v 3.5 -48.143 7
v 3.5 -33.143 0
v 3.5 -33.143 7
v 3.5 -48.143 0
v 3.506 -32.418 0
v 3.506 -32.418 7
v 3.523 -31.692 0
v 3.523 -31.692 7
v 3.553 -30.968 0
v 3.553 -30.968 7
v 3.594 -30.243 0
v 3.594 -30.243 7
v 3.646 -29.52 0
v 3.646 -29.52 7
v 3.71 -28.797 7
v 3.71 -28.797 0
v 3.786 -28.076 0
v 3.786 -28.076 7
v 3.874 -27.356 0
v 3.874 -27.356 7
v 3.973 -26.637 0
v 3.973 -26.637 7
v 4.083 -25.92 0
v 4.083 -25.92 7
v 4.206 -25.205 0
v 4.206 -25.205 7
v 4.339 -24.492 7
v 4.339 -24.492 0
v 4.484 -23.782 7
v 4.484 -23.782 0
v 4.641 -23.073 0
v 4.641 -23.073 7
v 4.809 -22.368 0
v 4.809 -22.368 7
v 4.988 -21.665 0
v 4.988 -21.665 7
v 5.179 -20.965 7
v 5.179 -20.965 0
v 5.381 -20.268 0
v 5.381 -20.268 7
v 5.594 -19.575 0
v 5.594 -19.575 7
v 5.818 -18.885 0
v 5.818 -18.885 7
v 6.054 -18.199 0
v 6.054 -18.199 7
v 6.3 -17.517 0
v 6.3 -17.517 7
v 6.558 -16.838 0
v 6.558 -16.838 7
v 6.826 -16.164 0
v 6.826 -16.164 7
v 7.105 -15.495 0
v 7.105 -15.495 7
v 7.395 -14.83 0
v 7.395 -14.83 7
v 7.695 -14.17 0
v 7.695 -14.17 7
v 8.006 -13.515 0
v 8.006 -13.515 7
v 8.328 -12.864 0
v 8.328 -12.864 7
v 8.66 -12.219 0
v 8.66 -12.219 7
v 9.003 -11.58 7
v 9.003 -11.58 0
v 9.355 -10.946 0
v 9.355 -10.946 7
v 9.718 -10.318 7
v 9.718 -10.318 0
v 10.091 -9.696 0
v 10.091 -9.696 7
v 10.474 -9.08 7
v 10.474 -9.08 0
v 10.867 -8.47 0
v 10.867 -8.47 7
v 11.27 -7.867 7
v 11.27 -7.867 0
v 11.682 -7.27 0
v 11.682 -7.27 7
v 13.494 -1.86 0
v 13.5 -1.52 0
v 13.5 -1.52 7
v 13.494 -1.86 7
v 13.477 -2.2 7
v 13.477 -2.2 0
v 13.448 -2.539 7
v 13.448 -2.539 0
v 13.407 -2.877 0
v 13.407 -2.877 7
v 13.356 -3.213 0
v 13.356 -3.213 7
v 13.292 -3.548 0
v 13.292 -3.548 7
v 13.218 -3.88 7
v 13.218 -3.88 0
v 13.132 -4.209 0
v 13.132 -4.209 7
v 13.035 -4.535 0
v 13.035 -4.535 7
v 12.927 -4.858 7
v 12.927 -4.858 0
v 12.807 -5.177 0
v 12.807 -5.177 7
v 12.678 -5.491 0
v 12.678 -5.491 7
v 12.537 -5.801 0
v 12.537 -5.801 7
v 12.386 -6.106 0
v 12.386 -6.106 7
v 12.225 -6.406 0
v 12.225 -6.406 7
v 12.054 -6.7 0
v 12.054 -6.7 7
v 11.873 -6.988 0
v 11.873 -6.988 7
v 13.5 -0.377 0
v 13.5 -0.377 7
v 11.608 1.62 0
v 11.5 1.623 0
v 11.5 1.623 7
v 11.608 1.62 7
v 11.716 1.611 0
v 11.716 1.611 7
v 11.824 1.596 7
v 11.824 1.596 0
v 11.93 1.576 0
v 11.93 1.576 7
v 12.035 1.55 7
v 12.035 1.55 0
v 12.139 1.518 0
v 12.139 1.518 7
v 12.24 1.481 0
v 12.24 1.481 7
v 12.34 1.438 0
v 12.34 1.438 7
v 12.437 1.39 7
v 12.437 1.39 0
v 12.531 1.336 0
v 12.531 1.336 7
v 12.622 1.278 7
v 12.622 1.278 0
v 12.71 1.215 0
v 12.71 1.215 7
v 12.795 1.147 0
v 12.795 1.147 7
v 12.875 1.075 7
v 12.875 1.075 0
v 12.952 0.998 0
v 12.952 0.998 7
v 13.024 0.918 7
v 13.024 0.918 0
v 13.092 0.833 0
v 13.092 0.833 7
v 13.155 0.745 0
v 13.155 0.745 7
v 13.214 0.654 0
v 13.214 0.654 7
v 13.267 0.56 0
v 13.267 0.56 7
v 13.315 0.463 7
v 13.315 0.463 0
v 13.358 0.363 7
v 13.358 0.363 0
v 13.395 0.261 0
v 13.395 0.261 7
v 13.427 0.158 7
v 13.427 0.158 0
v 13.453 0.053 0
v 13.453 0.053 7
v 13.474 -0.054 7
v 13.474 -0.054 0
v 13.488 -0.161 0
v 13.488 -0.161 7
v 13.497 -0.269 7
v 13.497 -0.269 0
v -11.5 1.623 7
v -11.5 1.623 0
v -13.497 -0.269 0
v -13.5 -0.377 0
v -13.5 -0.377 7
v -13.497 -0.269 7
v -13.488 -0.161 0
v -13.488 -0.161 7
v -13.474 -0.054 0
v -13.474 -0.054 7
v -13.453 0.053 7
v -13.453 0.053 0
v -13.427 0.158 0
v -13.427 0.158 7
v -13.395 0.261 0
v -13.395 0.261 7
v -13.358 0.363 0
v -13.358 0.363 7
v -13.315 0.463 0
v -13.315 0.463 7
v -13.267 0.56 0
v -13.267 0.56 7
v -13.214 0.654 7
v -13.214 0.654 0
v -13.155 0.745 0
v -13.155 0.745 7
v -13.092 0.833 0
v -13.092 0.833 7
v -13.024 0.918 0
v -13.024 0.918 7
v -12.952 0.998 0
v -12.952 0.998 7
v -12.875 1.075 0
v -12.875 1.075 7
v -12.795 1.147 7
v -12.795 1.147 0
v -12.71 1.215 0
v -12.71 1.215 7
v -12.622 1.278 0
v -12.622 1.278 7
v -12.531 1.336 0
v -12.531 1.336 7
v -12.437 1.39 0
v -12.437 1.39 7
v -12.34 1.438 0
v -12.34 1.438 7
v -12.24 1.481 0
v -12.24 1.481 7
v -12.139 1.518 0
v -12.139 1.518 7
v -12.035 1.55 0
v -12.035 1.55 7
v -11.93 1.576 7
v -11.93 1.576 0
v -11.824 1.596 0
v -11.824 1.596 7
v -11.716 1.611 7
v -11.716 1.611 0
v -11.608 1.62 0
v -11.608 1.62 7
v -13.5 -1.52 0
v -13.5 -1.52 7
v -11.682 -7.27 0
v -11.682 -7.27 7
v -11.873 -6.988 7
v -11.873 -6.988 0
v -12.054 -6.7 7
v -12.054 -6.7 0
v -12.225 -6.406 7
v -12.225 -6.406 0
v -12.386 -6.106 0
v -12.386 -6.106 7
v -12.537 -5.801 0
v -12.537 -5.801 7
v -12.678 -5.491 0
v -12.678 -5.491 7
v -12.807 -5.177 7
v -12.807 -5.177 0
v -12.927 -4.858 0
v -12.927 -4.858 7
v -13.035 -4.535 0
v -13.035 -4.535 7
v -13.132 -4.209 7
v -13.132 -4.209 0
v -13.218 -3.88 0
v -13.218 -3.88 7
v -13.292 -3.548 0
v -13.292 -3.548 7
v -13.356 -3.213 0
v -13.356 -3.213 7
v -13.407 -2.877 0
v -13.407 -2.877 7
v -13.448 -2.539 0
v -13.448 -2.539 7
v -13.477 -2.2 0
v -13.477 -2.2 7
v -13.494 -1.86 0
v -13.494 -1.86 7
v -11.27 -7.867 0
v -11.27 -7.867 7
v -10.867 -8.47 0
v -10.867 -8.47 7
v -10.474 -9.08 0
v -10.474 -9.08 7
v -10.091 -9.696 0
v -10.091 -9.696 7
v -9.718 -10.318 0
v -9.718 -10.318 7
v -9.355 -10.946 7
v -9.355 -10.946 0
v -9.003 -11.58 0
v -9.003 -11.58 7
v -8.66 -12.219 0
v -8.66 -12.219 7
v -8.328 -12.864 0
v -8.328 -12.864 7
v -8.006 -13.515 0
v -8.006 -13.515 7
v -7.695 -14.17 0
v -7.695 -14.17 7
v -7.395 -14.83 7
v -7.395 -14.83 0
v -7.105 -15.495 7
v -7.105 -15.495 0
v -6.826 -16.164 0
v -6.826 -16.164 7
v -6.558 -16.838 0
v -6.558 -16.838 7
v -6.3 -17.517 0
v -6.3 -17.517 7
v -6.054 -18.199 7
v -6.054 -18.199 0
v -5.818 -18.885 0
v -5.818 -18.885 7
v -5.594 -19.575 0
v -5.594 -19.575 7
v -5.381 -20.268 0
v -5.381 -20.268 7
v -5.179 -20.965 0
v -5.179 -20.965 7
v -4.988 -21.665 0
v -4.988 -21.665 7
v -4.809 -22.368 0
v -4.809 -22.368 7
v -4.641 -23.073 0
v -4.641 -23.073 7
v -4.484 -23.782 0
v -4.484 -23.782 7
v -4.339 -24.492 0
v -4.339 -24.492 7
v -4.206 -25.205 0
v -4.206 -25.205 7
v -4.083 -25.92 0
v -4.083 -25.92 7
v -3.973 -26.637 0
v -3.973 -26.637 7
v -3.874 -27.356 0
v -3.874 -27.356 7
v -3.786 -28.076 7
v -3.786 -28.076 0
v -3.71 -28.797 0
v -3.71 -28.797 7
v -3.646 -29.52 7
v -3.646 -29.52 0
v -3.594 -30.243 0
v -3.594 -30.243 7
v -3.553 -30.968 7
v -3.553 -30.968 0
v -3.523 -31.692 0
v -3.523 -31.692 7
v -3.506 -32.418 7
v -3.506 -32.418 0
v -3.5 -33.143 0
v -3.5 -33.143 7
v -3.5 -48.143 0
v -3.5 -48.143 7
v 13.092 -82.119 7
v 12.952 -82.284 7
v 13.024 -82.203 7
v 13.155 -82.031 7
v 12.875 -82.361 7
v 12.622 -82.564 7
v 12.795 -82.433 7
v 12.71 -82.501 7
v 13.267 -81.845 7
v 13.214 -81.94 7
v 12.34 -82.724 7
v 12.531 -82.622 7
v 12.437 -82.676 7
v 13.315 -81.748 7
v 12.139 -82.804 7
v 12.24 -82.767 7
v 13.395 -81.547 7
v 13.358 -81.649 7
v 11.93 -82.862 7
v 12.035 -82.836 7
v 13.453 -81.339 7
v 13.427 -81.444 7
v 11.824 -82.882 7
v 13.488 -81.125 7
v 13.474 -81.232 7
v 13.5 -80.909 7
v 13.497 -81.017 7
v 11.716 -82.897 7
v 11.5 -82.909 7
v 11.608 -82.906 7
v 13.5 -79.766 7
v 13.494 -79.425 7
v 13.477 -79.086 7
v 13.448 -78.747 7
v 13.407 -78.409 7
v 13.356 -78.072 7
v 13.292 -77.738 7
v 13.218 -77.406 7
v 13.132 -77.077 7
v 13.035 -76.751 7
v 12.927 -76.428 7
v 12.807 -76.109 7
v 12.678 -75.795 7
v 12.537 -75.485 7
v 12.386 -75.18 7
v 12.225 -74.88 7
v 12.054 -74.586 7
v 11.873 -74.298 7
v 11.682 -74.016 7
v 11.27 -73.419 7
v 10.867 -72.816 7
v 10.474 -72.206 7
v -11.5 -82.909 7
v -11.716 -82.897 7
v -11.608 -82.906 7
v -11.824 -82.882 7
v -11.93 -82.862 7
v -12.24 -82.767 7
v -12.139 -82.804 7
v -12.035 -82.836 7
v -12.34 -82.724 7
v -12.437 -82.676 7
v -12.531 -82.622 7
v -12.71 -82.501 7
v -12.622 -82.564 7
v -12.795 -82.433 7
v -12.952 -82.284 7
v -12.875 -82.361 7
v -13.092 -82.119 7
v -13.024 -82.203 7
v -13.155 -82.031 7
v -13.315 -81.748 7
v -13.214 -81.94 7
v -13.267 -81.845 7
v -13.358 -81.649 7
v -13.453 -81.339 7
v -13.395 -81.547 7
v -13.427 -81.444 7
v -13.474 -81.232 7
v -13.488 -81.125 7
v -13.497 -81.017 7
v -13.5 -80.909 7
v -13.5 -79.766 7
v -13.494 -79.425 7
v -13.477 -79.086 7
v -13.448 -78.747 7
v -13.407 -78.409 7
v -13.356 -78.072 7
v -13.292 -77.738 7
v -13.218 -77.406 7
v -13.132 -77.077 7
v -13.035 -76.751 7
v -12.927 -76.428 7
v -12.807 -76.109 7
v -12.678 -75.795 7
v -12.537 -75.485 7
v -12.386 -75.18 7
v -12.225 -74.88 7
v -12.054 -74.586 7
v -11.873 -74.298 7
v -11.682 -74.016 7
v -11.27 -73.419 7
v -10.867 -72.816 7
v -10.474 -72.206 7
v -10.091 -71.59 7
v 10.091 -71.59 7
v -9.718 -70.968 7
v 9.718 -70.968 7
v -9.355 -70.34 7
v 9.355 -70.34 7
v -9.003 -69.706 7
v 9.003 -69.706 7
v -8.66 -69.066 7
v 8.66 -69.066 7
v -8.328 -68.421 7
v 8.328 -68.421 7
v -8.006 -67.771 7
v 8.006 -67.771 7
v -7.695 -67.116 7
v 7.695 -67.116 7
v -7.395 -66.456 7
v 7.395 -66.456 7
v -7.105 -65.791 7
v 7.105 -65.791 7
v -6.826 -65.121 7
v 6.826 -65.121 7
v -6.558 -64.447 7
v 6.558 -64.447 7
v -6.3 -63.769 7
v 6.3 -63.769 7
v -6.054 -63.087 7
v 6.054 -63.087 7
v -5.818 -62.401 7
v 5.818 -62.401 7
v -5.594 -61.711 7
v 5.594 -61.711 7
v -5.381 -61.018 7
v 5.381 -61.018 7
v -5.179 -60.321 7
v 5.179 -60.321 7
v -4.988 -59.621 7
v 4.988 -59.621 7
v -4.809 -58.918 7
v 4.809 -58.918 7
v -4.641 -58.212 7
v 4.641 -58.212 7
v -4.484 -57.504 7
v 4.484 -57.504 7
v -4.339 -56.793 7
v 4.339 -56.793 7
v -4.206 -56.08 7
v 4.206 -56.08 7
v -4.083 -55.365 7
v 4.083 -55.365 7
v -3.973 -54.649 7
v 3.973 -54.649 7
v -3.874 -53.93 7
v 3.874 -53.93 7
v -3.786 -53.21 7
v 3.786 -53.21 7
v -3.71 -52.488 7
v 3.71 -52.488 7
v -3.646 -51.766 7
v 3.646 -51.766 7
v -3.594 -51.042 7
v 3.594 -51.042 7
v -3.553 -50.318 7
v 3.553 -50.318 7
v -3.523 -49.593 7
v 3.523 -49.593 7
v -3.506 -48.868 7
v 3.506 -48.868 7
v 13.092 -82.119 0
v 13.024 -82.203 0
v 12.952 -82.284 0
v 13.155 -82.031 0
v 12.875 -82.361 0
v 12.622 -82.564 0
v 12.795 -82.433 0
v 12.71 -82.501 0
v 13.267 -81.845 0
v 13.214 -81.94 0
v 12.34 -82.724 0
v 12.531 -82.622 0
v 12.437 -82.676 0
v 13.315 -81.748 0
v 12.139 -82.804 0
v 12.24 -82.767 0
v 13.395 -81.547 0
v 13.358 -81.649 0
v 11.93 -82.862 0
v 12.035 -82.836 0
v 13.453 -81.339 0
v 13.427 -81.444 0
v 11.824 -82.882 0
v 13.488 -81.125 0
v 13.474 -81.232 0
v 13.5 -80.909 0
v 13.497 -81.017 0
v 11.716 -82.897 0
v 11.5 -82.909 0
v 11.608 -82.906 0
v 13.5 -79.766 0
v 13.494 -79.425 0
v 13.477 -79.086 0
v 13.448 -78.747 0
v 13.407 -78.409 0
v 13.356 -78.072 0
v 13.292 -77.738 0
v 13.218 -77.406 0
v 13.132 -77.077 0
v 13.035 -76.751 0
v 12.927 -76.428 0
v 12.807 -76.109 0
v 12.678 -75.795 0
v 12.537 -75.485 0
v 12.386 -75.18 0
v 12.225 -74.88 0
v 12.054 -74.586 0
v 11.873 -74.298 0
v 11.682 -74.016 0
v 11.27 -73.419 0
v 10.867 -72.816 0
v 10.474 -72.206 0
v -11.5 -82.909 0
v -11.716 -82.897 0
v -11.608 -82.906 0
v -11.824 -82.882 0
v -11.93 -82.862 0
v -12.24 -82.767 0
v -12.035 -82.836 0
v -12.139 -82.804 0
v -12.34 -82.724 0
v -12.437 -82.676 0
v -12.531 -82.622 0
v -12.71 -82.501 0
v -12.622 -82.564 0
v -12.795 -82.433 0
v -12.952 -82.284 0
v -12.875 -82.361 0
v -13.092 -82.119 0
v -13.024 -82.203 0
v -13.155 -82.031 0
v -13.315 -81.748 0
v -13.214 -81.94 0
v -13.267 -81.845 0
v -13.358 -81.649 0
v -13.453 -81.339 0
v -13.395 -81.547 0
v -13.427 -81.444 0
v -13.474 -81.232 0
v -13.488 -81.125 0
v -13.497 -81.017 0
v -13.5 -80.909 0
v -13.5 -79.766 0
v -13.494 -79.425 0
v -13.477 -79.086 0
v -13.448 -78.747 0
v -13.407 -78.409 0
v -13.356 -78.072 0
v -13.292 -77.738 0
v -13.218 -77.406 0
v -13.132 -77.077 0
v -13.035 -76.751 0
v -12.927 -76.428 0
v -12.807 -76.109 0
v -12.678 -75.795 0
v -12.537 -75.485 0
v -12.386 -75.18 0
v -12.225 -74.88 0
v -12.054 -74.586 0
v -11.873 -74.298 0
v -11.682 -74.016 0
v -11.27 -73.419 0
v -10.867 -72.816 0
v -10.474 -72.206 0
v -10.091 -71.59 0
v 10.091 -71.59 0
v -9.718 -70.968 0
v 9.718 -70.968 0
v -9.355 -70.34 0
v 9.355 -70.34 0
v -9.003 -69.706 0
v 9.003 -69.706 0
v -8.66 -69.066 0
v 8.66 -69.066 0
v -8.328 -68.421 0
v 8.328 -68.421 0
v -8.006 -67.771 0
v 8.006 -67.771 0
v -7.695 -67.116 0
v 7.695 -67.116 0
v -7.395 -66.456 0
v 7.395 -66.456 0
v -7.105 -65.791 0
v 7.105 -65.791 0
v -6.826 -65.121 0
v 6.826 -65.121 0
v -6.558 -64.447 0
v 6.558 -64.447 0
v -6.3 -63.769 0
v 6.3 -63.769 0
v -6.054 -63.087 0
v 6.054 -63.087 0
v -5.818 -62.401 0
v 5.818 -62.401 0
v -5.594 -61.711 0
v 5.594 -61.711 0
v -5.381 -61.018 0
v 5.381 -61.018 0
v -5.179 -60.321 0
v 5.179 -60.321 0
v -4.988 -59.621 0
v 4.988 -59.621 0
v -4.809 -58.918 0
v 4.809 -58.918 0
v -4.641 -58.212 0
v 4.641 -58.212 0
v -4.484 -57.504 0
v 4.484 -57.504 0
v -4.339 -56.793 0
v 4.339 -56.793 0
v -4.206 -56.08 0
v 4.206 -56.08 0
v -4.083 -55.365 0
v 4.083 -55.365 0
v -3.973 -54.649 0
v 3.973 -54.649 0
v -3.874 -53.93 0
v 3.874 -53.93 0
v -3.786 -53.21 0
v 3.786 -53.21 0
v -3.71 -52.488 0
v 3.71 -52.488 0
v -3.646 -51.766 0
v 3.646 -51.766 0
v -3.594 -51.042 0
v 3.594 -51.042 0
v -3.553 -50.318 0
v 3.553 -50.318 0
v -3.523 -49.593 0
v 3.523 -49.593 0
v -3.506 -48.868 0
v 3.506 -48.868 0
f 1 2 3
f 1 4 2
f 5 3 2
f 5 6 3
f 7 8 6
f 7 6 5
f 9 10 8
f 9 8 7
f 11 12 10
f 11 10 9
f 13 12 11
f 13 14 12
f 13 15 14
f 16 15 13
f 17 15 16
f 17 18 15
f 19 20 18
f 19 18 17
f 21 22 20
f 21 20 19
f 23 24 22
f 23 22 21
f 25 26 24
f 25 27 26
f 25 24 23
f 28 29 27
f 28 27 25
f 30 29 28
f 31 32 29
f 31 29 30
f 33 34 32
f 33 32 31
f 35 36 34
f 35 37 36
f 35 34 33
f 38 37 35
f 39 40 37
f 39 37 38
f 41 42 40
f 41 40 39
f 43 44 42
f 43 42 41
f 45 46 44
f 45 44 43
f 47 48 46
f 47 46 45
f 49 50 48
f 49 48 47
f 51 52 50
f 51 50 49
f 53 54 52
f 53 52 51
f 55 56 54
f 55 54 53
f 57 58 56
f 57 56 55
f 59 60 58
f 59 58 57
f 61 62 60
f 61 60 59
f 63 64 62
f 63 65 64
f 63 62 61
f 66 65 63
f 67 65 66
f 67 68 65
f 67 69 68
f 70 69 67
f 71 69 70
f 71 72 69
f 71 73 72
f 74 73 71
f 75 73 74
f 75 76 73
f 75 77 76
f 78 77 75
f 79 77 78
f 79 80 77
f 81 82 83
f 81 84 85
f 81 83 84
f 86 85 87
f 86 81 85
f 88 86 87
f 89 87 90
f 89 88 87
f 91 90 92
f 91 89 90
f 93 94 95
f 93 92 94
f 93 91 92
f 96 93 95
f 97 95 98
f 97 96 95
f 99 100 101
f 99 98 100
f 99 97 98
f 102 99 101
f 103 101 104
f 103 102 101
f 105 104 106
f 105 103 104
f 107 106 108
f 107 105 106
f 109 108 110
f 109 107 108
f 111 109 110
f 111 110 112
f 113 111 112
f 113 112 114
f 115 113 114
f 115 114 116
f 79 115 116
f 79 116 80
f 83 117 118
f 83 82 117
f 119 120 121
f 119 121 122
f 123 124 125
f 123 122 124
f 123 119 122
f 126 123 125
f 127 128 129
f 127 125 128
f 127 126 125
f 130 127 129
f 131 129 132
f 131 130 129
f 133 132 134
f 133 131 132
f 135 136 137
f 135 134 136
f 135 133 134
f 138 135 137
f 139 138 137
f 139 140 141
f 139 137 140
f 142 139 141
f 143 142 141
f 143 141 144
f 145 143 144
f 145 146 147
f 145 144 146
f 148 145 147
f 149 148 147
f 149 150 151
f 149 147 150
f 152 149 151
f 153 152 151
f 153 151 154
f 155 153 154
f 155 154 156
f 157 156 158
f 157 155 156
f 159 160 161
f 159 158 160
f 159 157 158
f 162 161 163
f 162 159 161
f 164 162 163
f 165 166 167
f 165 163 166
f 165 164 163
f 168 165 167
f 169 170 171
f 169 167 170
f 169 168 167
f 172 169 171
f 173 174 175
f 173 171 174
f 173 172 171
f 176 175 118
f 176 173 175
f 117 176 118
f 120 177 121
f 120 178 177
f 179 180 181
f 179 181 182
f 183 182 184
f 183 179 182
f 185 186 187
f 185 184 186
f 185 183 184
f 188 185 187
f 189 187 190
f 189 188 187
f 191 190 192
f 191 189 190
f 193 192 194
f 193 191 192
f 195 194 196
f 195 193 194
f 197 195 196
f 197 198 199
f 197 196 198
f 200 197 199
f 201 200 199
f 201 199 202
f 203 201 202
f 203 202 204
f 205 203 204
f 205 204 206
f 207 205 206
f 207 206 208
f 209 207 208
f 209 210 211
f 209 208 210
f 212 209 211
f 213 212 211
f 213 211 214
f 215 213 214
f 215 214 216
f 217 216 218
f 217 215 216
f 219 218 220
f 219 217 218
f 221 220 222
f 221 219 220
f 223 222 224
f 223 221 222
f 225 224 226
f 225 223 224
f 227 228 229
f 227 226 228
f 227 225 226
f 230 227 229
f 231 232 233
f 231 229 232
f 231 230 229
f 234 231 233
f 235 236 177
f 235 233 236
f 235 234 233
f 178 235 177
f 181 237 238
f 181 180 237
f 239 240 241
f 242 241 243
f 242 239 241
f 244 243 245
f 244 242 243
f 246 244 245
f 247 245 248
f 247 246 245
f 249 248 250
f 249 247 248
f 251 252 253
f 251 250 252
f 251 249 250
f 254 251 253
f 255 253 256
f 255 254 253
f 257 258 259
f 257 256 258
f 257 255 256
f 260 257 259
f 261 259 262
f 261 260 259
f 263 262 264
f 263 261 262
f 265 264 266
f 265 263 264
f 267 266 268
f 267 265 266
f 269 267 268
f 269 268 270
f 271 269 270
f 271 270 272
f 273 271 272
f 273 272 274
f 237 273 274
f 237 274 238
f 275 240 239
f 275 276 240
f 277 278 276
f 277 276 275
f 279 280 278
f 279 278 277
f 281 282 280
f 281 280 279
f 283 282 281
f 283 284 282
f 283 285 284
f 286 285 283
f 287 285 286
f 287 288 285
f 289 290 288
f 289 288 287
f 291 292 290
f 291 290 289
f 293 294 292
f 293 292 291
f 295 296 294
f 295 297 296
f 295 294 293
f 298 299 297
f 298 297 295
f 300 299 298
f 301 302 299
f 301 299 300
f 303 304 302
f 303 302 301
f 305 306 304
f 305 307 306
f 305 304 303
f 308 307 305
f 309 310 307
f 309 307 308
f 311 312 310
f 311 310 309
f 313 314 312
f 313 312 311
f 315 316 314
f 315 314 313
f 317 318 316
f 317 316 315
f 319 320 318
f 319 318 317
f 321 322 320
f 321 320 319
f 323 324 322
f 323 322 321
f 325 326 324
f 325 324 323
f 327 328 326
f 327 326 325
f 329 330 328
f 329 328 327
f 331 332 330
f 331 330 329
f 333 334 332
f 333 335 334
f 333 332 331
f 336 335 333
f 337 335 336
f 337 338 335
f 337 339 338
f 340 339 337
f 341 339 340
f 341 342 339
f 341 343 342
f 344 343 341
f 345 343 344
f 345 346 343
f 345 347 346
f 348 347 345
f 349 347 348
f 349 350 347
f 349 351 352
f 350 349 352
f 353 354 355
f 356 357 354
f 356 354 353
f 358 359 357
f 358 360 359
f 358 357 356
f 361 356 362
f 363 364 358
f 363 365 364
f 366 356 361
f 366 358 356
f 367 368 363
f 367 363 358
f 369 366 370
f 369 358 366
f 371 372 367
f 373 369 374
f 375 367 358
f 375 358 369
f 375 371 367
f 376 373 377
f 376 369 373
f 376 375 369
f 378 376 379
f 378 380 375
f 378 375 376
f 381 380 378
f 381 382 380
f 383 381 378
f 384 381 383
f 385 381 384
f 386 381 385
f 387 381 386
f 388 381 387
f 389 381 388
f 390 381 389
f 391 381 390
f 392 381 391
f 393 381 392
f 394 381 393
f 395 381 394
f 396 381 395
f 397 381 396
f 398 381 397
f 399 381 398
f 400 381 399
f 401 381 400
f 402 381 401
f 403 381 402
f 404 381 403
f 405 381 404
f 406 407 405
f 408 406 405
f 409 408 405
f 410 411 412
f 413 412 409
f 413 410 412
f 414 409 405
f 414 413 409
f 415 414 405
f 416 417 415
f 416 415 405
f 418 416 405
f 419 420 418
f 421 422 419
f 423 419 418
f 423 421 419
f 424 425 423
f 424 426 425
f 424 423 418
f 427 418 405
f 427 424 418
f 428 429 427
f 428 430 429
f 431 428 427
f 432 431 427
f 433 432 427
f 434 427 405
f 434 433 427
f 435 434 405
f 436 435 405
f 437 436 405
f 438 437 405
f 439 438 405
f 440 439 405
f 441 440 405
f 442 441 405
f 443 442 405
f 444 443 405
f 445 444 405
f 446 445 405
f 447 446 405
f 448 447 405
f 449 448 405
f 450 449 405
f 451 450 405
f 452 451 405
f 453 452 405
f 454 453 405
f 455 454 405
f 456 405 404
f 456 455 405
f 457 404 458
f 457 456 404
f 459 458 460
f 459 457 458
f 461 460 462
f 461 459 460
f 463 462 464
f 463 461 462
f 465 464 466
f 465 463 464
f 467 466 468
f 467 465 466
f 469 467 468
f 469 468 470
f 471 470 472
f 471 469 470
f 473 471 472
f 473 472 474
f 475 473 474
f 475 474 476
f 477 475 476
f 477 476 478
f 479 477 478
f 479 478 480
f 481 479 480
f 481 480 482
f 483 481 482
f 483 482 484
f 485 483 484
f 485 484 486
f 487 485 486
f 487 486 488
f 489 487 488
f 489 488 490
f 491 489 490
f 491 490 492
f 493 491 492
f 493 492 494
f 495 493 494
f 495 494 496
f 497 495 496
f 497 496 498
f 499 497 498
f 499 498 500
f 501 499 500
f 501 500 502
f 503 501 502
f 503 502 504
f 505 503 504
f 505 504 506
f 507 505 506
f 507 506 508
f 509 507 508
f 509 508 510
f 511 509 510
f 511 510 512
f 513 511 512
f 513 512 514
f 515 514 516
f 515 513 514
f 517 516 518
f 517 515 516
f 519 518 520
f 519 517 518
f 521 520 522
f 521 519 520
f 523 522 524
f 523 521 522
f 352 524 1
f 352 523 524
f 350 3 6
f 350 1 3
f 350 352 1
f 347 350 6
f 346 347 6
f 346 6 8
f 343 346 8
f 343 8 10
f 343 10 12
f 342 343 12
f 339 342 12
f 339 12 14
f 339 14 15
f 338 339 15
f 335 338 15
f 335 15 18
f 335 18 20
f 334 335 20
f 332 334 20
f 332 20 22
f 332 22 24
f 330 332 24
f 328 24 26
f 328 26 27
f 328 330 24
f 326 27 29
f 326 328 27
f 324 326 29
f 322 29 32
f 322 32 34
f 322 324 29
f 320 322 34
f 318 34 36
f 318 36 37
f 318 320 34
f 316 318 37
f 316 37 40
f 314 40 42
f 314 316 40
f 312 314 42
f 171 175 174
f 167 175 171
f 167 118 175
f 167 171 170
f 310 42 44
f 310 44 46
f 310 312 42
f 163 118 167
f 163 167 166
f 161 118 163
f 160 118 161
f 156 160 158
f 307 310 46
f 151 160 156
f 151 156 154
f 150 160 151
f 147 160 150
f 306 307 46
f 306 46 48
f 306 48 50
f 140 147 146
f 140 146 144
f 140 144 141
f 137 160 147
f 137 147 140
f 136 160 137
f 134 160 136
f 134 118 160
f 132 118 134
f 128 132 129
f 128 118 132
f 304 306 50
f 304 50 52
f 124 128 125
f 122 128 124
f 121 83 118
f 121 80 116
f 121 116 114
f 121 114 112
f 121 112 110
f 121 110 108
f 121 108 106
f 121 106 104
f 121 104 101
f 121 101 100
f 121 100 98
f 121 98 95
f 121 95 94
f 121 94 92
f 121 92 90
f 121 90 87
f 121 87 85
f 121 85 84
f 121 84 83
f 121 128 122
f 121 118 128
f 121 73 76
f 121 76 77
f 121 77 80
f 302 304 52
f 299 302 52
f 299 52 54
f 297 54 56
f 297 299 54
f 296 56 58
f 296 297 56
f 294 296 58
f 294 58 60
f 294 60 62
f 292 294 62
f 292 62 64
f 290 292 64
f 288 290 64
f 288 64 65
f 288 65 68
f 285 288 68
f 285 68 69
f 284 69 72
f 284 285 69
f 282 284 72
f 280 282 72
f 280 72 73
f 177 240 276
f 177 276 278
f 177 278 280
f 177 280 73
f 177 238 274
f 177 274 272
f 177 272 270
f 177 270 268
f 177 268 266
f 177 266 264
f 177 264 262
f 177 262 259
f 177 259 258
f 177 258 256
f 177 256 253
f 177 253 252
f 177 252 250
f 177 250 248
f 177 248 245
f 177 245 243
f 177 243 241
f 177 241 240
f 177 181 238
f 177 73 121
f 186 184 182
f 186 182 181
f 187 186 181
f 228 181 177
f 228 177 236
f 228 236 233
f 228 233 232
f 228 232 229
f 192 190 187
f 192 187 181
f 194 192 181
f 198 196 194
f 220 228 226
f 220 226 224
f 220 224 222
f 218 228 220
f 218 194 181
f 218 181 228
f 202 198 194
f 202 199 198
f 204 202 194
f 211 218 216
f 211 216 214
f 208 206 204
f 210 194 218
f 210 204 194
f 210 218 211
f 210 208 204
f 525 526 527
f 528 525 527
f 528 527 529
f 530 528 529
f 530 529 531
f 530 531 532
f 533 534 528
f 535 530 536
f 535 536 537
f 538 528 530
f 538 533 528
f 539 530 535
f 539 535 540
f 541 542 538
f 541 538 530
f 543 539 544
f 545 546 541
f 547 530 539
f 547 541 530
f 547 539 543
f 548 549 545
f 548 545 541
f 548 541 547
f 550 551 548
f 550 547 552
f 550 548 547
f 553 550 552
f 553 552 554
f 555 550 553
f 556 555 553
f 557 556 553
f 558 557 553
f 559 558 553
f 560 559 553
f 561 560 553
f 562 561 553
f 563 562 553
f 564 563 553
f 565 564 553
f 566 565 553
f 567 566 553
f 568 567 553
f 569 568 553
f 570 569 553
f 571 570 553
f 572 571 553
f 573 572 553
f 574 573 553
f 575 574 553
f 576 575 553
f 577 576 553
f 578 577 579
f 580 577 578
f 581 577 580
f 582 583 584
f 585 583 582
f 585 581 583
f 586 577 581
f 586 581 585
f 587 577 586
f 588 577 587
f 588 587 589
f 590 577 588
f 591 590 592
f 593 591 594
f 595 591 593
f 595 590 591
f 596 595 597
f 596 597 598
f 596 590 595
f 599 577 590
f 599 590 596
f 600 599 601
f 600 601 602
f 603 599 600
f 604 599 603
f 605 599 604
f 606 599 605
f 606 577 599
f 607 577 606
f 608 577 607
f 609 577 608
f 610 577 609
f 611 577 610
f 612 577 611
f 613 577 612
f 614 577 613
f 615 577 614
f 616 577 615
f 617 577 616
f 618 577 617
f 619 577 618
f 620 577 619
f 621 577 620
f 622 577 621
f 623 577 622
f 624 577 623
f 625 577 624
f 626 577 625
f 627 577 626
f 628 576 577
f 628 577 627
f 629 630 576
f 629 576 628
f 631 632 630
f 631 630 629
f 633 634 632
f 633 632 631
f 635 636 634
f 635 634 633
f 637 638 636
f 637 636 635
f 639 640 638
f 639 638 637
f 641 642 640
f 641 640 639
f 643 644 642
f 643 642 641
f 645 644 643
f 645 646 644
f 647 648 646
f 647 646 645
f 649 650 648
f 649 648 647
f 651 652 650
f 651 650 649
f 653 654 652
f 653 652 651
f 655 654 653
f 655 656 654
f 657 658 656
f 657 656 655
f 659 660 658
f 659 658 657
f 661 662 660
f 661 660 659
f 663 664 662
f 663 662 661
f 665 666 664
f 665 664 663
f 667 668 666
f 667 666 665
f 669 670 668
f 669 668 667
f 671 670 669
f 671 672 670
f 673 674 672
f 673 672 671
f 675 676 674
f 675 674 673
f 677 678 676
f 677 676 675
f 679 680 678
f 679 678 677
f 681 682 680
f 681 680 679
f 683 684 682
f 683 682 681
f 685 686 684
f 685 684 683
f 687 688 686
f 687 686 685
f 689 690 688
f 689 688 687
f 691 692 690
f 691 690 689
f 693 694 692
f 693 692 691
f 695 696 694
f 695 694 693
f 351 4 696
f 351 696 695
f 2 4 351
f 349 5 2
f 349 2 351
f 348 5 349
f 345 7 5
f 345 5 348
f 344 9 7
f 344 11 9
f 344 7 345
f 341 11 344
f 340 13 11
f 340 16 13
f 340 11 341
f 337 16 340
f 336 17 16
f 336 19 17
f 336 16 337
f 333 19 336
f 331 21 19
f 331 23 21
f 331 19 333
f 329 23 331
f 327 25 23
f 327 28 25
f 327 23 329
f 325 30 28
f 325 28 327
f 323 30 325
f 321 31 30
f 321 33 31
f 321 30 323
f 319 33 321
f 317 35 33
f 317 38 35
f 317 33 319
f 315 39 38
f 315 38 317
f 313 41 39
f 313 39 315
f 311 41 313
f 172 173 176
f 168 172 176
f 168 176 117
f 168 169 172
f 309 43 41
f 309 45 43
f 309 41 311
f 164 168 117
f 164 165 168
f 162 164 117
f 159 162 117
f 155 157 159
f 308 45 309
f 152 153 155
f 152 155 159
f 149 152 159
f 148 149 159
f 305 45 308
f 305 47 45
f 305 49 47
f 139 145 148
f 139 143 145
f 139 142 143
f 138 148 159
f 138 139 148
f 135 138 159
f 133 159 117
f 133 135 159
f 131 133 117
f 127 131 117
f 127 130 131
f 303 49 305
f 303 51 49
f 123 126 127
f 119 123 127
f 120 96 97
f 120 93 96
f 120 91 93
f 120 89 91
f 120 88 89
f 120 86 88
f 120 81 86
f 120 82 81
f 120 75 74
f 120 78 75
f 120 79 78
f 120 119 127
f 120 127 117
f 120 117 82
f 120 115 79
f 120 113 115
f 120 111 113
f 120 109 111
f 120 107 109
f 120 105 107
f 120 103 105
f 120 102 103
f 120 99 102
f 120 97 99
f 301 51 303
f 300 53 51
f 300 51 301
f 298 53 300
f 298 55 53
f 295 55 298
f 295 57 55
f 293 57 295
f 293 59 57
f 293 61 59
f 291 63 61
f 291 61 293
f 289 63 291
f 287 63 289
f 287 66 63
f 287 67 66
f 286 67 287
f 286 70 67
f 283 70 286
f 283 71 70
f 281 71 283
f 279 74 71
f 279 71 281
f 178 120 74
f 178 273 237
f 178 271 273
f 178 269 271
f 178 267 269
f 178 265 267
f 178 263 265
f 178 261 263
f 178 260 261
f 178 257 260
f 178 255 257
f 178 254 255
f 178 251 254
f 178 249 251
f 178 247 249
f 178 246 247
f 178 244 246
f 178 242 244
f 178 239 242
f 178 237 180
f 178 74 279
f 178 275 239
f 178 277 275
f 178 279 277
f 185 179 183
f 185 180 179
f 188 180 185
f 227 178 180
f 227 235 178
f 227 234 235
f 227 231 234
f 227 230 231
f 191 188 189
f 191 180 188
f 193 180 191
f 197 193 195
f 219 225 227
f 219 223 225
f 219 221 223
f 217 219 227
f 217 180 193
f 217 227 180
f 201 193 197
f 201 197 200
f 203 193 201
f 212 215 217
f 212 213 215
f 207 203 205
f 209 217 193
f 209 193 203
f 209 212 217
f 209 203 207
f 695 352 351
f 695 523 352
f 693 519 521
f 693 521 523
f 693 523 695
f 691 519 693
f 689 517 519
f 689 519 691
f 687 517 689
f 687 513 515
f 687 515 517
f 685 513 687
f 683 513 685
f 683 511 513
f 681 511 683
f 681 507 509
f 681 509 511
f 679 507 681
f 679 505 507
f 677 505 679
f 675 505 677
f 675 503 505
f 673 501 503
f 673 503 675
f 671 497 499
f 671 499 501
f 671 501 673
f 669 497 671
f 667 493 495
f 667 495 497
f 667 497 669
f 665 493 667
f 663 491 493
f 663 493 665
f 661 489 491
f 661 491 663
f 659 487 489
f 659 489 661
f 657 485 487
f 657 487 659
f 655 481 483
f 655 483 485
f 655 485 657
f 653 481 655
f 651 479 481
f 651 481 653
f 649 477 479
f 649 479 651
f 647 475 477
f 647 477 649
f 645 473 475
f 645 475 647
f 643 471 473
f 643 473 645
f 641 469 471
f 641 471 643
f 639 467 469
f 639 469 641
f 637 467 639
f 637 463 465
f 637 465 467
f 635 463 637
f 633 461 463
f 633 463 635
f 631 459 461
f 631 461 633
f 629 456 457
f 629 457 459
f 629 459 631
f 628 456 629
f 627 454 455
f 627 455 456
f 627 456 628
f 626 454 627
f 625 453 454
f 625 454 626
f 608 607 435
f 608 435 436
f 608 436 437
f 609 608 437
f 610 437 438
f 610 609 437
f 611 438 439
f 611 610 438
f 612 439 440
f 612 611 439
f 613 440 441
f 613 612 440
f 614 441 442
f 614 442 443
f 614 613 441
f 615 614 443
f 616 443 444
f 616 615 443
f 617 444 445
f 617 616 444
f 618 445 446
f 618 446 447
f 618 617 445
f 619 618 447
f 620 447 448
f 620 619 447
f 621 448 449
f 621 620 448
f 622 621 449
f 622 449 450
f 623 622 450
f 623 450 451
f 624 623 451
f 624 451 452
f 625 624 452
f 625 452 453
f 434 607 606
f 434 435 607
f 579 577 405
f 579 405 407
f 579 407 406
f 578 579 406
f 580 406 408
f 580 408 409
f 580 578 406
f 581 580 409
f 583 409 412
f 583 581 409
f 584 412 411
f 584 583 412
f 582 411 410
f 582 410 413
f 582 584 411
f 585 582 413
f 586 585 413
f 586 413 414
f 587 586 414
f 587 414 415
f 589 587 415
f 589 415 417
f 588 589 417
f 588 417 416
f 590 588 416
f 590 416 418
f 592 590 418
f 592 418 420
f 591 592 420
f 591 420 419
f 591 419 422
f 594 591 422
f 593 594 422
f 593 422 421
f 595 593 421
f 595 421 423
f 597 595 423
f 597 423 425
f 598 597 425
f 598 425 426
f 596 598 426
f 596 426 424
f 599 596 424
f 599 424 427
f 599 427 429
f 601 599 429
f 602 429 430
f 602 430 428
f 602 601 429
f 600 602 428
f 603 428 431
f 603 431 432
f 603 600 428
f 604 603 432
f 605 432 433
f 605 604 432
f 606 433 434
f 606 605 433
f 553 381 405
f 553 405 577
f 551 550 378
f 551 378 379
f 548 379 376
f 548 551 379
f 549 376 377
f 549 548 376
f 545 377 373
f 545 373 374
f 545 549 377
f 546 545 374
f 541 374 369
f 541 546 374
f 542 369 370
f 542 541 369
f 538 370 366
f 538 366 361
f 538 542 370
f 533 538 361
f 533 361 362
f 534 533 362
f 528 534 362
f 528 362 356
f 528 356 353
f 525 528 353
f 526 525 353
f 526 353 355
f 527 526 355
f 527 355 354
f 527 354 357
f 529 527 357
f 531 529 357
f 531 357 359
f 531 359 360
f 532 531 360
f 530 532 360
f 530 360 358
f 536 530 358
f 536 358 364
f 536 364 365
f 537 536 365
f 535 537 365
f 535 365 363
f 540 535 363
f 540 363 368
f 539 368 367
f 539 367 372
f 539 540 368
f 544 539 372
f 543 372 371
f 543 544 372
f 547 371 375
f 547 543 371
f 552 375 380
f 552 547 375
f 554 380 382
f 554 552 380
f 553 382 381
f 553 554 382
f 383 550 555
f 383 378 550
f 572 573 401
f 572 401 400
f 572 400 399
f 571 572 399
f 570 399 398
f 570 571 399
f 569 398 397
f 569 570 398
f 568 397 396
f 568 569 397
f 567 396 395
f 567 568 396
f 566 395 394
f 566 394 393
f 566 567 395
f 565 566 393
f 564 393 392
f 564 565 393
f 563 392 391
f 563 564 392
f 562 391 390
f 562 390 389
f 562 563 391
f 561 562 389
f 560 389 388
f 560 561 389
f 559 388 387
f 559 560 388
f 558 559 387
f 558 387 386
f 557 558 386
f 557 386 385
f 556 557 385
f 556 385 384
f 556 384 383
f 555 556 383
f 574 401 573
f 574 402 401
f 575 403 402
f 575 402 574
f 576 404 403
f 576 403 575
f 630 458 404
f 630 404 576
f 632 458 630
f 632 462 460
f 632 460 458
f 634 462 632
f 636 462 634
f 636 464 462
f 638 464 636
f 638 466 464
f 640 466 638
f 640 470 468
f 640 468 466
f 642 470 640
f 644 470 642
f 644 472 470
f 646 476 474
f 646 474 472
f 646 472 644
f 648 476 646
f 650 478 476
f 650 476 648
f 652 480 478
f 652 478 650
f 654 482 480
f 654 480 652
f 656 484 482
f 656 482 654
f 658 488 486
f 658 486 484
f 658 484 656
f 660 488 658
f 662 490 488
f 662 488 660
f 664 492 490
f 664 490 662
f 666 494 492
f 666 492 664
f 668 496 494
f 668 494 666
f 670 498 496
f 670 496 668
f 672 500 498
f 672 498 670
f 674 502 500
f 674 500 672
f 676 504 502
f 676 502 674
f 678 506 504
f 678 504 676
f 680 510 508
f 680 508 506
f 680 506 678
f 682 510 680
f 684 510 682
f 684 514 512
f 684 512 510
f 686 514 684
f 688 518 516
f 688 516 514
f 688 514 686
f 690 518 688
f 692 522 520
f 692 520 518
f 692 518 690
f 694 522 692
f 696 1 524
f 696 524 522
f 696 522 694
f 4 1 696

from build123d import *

# Parameters (mm, degrees)
BOSS_EXTRUDE1_DEPTH = 7


with BuildPart() as part:
    # Sketch1 → Boss-Extrude1 (new body)
    with BuildSketch(Plane.XY):
        with BuildLine():
            Line((-13.5, -1.520113715), (-13.5, -0.377223398))
            ThreePointArc((-13.5, -0.377223398), (-12.914213562, 1.036990164), (-11.5, 1.622776602))
            Line((-11.5, 1.622776602), (11.5, 1.622776602))
            ThreePointArc((11.5, 1.622776602), (12.914213562, 1.036990164), (13.5, -0.377223398))
            Line((13.5, -0.377223398), (13.5, -1.520113715))
            ThreePointArc((13.5, -1.520113715), (13.034625892, -4.535227161), (11.681818182, -7.269709461))
            ThreePointArc((11.681818182, -7.269709461), (5.594183484, -19.574879811), (3.5, -33.142890317))
            Line((3.5, -33.142890317), (3.5, -40.642890317))
            Line((3.5, -40.642890317), (-3.5, -40.642890317))
            Line((-3.5, -40.642890317), (-3.5, -33.142890317))
            ThreePointArc((-3.5, -33.142890317), (-5.594183484, -19.574879811), (-11.681818182, -7.269709461))
            ThreePointArc((-11.681818182, -7.269709461), (-13.034625892, -4.535227161), (-13.5, -1.520113715))
        make_face()
    boss_extrude1 = extrude(amount=BOSS_EXTRUDE1_DEPTH)

    # Mirror1: Boss-Extrude1 across plane
    add(boss_extrude1.mirror(Plane(origin=(3.5, -40.642890317, 7), x_dir=(0, 0, 1), z_dir=(0, 1, 0))))


solid = part.part
